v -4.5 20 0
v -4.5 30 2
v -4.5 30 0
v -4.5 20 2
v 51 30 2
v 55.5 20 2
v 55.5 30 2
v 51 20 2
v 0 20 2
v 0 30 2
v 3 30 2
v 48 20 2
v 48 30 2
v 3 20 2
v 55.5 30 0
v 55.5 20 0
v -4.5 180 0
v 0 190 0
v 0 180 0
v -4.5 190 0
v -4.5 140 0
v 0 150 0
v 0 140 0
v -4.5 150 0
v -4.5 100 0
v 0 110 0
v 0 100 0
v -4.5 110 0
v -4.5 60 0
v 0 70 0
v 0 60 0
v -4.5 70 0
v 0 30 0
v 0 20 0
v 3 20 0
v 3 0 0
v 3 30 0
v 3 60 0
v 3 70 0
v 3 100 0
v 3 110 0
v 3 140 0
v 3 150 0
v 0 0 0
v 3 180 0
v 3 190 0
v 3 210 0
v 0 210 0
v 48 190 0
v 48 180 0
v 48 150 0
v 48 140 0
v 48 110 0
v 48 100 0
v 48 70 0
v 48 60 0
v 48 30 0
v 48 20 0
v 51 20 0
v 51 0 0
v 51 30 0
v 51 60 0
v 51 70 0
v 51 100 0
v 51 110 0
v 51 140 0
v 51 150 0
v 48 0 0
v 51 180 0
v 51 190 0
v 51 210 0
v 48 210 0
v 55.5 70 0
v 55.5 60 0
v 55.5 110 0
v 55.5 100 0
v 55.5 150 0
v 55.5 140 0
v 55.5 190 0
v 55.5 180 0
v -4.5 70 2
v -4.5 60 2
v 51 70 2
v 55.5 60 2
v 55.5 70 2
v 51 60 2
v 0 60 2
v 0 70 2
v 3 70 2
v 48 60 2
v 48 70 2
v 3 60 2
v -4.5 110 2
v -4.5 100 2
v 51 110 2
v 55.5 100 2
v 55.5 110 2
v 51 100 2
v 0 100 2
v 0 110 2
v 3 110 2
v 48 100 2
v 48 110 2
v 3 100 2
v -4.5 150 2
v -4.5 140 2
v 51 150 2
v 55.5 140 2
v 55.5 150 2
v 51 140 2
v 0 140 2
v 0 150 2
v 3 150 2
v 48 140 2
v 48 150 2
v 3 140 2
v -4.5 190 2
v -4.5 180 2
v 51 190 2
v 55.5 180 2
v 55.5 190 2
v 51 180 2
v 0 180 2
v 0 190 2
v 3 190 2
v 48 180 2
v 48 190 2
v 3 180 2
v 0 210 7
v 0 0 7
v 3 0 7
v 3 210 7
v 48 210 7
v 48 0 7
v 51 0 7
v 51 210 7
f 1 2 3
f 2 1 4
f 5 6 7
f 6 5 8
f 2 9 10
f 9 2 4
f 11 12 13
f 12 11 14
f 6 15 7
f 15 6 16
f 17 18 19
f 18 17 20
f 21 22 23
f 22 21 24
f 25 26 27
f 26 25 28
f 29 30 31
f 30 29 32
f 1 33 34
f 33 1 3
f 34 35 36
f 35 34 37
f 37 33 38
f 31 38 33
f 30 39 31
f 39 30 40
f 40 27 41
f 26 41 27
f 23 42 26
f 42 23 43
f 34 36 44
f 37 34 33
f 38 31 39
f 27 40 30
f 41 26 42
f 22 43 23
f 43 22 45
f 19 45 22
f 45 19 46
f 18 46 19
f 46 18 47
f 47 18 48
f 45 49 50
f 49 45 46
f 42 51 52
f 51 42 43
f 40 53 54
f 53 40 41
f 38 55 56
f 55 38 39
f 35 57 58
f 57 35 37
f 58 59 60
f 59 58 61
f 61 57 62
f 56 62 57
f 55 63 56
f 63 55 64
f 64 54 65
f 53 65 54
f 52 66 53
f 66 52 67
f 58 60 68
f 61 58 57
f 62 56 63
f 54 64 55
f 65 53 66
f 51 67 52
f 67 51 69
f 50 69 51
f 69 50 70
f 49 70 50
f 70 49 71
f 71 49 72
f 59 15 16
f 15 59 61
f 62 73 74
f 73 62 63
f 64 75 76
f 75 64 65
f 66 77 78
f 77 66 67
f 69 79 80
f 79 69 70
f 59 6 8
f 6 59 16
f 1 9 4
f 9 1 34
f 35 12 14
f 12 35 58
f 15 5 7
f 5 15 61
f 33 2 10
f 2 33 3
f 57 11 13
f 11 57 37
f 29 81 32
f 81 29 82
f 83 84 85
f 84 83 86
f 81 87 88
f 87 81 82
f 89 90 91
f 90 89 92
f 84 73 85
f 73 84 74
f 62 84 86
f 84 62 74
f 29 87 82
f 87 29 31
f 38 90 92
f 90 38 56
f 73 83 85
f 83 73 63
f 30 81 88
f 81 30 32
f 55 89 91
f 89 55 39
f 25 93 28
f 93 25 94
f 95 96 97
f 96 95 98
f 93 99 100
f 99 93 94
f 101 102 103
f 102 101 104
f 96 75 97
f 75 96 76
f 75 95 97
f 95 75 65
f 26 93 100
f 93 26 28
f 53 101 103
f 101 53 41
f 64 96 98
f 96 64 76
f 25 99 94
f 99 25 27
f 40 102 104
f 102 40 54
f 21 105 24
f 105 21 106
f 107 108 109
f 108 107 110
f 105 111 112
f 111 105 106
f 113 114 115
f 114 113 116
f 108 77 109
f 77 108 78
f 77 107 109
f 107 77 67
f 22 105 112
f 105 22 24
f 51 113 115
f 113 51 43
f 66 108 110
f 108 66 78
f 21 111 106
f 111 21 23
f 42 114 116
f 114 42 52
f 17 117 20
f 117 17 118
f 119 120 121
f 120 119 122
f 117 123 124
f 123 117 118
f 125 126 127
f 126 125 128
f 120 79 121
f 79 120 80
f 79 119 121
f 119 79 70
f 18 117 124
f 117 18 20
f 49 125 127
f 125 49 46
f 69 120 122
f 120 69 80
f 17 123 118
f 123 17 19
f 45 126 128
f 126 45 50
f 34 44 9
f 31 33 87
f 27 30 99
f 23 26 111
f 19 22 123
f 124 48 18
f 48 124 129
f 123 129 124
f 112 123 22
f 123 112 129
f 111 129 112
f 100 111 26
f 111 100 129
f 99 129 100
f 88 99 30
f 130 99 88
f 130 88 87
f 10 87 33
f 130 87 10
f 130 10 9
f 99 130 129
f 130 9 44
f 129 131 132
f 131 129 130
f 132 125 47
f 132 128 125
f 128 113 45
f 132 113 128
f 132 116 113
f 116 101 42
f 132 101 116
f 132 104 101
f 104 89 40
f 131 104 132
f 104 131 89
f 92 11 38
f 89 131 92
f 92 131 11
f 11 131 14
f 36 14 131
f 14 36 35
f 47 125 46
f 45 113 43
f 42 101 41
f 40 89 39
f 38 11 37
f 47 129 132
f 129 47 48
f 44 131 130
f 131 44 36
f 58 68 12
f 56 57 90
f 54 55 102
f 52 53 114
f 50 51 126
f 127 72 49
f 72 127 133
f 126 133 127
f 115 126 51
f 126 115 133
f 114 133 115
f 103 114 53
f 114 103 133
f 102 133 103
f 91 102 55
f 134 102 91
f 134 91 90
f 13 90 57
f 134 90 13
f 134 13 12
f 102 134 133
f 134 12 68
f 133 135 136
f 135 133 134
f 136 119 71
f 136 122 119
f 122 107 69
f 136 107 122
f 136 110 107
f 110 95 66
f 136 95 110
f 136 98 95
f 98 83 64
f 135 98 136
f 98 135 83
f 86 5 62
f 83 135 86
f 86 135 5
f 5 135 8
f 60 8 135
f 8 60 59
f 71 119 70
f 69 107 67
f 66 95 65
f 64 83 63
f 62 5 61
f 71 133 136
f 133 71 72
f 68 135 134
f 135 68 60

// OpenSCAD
breite = 3; //Breite einer Schiene
laenge = 210; // Länger der Schiene insgesamt
abstand = 45;//Innenabstand der Schienen
hoehe = 7;
s_breite = 60;
s_hoehe = 2;
s_laenge = 10;
s_abstand = 30+s_laenge;
module schiene(){
    cube([breite, laenge, hoehe]);
}

module schweller(){
    cube([s_breite, s_laenge, s_hoehe]);
}

schiene();
translate([abstand + breite,0,0])schiene();
translate([0,s_abstand/2,0]){
    for(i = [0:s_abstand:laenge-s_abstand]){
        translate([-(s_breite-(abstand+2*breite))/2,i,0])schweller();
    }
}
